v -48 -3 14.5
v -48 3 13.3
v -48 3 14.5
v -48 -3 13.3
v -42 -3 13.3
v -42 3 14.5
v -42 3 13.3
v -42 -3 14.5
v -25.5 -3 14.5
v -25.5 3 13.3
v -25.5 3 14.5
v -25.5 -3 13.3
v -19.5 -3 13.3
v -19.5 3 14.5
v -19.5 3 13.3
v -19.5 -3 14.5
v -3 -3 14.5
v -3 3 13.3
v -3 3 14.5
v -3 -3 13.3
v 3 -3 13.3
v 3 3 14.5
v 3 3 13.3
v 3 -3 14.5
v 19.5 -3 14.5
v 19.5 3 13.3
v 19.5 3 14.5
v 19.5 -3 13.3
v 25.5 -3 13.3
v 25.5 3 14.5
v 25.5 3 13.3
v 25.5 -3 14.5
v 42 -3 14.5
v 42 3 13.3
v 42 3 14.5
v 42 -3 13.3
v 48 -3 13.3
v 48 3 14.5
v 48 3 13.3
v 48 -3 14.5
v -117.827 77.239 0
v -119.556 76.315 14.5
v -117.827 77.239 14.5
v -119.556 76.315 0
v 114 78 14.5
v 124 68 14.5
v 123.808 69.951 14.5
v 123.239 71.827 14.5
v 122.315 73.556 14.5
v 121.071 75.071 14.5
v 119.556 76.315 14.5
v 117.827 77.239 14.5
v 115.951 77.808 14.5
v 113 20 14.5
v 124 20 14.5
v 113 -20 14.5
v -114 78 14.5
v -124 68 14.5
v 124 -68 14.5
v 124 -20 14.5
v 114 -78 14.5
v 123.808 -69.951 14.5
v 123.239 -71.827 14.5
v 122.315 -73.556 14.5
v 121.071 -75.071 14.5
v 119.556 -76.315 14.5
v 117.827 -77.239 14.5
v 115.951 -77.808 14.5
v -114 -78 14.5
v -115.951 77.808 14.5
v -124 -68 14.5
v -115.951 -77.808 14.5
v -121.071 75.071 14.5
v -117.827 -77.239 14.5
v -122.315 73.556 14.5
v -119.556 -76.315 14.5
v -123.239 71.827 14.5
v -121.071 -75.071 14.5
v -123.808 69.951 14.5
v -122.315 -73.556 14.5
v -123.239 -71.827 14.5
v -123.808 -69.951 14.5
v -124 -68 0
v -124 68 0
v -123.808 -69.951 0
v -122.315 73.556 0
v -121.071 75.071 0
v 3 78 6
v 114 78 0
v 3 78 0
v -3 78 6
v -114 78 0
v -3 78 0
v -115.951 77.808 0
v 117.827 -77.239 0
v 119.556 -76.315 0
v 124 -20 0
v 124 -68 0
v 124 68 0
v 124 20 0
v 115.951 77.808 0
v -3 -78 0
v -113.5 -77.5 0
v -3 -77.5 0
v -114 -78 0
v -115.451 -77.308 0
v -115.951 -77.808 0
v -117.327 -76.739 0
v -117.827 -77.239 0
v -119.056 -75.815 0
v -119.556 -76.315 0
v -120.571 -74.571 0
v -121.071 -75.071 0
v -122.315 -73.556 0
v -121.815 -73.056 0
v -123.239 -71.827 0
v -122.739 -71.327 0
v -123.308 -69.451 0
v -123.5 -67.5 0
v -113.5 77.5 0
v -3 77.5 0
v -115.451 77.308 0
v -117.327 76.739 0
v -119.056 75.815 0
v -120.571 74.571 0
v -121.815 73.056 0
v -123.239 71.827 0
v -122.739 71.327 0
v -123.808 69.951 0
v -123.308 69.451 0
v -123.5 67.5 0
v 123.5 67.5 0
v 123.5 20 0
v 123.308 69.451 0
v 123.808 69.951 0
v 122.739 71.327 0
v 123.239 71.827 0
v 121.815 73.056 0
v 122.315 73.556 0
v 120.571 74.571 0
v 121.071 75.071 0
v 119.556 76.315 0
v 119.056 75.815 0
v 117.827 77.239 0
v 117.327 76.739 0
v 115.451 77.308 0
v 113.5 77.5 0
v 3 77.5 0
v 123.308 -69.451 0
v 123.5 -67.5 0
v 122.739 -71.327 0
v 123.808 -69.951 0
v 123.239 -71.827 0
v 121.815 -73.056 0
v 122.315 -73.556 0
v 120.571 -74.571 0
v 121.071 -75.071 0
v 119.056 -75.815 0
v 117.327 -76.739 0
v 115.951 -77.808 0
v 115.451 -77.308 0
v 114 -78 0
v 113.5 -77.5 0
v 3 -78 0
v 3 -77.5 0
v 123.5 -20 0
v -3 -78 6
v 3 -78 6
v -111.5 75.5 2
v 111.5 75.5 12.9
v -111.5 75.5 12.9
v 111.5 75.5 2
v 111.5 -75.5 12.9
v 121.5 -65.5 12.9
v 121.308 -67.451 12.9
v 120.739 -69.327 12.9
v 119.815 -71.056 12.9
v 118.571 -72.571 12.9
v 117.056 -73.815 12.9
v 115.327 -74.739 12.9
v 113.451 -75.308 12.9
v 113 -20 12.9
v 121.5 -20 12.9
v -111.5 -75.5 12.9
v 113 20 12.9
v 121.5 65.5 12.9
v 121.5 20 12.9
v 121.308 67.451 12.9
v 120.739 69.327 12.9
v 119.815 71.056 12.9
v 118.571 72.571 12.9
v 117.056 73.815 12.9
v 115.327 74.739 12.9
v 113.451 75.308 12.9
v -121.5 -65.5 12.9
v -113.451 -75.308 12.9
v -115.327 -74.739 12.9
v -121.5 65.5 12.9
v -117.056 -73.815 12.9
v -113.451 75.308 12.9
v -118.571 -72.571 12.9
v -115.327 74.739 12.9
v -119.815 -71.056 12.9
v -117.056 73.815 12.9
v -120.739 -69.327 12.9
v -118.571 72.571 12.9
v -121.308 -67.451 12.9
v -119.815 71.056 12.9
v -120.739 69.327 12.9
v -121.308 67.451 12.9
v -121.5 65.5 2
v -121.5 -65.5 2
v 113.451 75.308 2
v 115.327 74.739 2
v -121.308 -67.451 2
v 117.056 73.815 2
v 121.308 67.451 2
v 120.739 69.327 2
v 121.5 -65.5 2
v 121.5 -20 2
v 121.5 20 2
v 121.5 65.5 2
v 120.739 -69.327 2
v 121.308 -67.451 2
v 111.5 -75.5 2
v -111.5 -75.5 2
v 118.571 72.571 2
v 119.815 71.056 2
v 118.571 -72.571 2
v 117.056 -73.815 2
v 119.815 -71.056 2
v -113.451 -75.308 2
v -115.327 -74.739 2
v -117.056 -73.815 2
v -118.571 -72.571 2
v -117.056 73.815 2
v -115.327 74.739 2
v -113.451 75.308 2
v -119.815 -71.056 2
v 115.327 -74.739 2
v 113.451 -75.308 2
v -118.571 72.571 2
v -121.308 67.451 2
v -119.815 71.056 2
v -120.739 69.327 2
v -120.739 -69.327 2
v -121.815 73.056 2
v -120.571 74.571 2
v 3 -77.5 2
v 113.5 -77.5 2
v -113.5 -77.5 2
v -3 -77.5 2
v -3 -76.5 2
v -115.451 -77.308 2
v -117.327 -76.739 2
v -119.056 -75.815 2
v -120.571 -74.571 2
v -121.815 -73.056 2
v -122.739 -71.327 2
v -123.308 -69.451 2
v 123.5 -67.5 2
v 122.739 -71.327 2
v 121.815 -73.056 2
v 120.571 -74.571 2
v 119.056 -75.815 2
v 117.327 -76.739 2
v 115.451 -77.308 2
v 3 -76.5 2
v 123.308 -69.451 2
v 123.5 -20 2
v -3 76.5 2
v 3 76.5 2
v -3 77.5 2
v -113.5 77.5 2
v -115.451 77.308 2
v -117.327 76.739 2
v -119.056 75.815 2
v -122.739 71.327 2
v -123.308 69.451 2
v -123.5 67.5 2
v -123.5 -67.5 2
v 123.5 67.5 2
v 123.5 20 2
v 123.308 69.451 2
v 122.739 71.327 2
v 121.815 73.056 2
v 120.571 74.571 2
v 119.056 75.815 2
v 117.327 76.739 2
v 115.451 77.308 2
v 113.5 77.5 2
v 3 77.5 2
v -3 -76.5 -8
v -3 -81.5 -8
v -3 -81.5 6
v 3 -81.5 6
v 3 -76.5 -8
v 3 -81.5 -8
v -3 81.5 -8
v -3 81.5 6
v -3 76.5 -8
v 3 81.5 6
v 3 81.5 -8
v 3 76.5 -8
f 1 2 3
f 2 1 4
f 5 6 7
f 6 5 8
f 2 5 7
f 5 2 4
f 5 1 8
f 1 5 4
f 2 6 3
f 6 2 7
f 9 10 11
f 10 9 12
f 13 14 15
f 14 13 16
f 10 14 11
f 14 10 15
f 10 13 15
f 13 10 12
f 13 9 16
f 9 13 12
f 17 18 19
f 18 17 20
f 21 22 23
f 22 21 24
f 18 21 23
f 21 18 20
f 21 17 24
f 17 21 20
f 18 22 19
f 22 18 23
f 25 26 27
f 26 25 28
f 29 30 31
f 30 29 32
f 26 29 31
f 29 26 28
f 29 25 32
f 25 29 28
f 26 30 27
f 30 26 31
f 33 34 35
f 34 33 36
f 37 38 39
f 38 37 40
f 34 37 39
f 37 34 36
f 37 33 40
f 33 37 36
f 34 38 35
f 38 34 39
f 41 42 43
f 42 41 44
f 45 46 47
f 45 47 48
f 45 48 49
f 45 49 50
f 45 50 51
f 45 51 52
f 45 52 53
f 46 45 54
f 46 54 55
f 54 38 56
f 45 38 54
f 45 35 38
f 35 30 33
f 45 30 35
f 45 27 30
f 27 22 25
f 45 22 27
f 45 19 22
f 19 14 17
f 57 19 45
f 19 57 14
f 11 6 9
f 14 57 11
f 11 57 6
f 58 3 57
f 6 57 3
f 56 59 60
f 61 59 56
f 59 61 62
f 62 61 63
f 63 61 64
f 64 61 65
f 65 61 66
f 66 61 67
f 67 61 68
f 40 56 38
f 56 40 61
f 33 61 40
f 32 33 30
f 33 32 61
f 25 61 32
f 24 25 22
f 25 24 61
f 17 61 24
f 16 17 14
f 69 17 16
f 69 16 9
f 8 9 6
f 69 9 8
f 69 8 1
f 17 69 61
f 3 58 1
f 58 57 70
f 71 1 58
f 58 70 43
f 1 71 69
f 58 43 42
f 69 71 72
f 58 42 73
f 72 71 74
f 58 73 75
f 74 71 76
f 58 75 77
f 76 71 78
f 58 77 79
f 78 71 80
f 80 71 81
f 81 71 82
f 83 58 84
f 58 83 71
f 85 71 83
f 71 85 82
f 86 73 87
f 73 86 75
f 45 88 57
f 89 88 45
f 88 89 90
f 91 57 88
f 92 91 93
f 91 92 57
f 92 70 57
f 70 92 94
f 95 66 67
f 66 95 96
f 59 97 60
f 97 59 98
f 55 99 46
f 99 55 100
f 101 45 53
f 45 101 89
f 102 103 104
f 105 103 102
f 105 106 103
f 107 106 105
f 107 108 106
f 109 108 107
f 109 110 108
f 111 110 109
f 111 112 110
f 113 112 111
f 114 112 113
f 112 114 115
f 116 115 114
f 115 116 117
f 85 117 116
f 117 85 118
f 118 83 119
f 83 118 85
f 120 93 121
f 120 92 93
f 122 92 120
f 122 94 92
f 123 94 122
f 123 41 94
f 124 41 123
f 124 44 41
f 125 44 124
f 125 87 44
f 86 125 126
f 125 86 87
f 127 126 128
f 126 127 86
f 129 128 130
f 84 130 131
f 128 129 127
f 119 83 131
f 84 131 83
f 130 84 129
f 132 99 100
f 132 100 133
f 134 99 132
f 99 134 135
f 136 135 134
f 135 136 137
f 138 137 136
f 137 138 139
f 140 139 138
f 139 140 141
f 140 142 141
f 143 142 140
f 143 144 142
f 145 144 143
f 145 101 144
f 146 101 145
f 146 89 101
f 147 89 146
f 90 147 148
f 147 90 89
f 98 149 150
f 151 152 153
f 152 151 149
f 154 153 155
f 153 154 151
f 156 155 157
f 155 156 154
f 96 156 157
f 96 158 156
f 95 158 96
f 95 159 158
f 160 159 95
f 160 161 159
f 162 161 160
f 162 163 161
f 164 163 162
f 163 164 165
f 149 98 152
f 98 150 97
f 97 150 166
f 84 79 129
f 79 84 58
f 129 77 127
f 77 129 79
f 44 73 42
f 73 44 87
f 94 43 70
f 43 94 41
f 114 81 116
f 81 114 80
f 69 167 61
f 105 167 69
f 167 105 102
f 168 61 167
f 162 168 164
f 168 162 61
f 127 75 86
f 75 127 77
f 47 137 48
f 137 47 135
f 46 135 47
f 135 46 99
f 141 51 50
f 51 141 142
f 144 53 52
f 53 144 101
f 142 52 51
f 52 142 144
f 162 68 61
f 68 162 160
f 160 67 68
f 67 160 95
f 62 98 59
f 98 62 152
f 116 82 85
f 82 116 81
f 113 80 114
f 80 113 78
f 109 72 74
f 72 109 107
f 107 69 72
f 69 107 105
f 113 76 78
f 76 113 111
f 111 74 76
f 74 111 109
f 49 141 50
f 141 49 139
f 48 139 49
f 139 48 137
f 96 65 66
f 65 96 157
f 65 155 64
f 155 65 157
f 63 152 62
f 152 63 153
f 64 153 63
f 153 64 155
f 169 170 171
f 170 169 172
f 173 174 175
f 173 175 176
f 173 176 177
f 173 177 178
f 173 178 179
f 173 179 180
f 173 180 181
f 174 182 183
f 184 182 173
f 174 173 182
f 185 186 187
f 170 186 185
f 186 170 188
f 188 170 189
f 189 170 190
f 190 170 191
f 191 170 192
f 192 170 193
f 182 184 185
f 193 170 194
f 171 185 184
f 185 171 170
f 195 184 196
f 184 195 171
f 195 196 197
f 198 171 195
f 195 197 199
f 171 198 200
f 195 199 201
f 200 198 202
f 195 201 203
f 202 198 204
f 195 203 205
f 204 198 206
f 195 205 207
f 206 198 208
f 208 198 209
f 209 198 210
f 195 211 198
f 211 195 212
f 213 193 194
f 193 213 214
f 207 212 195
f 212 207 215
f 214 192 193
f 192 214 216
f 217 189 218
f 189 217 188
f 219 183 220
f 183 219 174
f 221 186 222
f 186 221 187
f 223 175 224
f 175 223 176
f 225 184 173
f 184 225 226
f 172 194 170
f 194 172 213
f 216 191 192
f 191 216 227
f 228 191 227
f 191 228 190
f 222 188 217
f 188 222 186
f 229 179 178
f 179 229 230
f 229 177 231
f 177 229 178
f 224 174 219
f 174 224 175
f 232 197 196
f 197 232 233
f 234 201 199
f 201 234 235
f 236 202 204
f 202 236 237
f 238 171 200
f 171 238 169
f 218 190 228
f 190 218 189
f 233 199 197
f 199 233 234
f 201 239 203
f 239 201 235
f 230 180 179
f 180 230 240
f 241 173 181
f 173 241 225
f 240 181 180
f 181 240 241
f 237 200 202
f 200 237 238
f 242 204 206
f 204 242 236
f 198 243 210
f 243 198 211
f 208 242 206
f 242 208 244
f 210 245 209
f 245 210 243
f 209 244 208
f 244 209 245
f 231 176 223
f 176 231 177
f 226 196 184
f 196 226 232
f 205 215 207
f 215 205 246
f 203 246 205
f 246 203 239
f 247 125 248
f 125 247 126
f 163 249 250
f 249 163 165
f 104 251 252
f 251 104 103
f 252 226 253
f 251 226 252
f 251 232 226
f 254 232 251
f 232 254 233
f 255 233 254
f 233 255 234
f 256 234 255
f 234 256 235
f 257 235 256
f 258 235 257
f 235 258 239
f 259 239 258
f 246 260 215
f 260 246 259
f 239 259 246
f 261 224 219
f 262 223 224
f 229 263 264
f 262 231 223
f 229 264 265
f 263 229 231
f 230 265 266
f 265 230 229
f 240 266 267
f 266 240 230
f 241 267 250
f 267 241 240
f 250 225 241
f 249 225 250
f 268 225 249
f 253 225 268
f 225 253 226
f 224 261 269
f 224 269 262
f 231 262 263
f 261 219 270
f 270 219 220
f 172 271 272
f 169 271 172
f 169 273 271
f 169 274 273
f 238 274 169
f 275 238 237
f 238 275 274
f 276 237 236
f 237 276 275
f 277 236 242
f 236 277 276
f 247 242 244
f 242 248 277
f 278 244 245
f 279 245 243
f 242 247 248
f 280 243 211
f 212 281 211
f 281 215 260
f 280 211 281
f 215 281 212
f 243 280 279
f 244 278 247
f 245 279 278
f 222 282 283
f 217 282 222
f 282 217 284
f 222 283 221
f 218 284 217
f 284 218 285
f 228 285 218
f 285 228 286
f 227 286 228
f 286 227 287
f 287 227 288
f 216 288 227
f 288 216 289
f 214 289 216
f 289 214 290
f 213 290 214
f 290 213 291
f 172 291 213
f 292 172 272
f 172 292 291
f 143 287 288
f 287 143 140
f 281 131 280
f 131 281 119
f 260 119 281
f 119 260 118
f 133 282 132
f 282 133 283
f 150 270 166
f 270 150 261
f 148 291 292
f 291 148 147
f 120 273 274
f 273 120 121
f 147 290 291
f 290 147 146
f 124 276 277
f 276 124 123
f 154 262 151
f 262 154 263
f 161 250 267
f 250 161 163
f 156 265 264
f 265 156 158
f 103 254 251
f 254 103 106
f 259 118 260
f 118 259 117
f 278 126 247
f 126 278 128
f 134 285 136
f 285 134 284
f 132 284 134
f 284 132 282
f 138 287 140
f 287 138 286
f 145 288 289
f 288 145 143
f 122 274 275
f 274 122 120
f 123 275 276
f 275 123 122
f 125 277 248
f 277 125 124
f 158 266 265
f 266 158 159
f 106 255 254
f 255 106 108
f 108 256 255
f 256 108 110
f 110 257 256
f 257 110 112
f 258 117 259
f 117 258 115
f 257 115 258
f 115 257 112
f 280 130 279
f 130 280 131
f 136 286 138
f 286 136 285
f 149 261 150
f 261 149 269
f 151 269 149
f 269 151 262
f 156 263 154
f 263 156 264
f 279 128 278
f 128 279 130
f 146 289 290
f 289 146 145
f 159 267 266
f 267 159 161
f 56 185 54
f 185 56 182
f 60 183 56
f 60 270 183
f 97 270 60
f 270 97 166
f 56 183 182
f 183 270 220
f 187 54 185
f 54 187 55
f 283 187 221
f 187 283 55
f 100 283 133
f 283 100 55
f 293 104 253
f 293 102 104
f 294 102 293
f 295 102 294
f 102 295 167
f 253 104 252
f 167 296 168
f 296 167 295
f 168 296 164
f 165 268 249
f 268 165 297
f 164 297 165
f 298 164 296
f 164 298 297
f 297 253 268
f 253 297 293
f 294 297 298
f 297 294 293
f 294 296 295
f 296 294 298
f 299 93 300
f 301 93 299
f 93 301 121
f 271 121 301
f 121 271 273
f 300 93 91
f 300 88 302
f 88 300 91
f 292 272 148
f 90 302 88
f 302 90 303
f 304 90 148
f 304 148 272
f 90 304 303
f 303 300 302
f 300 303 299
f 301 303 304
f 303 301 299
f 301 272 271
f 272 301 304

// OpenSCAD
//=============================================================================
// body_v5_upper_lid.scad —— 二层外包盖（扣在车身二层顶部）
//
// 设计要点（2026-11-01）
//   1. ★ 宁松勿紧：单边间隙 0.5mm（怕扣不上），底部再倒 2mm 斜角做导入
//   2. 只盖顶部 12mm 高（二层高 50，模块最高 34，留 4mm 余量不压线）
//   3. ★ 前缘开摄像窗：摄像头在 x≈112~115、y=0，窗宽 40 全高打通，绝不挡视野
//   4. 顶部开散热槽（FPGA/K230 会热）
//   5. 左右各一个外凸小耳（你手绘图上的两个"耳朵"），方便取下
//   6. 内角 R10（车身圆角 R8 + 2 余量，避免卡角扣不上）
//
// 打印：PETG 或 PLA，0.2 层高，壁 3 圈，填充 15%，不加支撑，brim 5
//=============================================================================

PART = "lid";        // "lid" | "check"（check 显示车身位置做校对）

// ---------------- 车身二层（body_v5.scad）----------------
L      = 242;        // 二层外长
W      = 150;        // 二层外宽
H2     = 50;         // 二层总高
WALL   = 3;
CR_BODY = 8;         // 车身圆角

// ---------------- 盖子参数 ----------------
CLR      = 0.5;      // ★ 单边间隙（怕扣不上，宁松勿紧；太松就改 0.3）
WALL_L   = 2.5;      // 盖壁厚
RIM_H    = 12;       // 裙边高度（只盖顶部 12mm）
TOP_T    = 2.5;      // 顶板厚度
CR_LID   = CR_BODY + 2;   // 盖内圆角（比车身大 2，避免卡角）
CHAMFER  = 2;        // 底部导入斜角

// ---------------- 摄像头窗口 ----------------
CAM_X    = 112;      // 摄像头中心 x（前缘 = +x）
CAM_W    = 40;       // 窗口宽度（摄像头 26 宽 + 两侧各 7 余量）
CAM_Y    = 0;

// ---------------- 散热槽 ----------------
VENT_N   = 5;
VENT_W   = 6;
VENT_L   = 90;
VENT_SP  = 18;

// ---------------- 耳朵 ----------------
EAR_W    = 14;
EAR_T    = 3;
EAR_OUT  = 5;

$fn = 32;


//-----------------------------------------------------------------------------
// 圆角矩形柱
//-----------------------------------------------------------------------------
module rrect(l, w, r, h) {
    hull() {
        for (x = [-l/2 + r, l/2 - r], y = [-w/2 + r, w/2 - r])
            translate([x, y, 0]) cylinder(r = r, h = h);
    }
}

//-----------------------------------------------------------------------------
// 盖子主体
//-----------------------------------------------------------------------------
module lid() {
    outer_l = L + 2 * (CLR + WALL_L);
    outer_w = W + 2 * (CLR + WALL_L);
    inner_l = L + 2 * CLR;
    inner_w = W + 2 * CLR;

    difference() {
        // ---- 外壳（顶板 + 裙边一体）----
        rrect(outer_l, outer_w, CR_LID, RIM_H + TOP_T);

        // ---- 内腔（从底部往上挖，留 TOP_T 做顶板）----
        translate([0, 0, -0.1])
            rrect(inner_l, inner_w, CR_LID, RIM_H + 1);

        // ---- 底部导入斜角：把内腔底部做成锥形，方便对准扣上 ----
        translate([0, 0, -0.1])
            rrect(inner_l + 2 * CHAMFER, inner_w + 2 * CHAMFER, CR_LID, CHAMFER + 0.1);
        // 上面这刀是把"底部 2mm 的内腔"挖大一点，形成 2mm 倒角

        // ---- 摄像头窗口：前壁 + 顶板前缘一起开，确保视野不被挡 ----
        translate([L / 2 - 8, CAM_Y - CAM_W / 2, -1])
            cube([24, CAM_W, RIM_H + TOP_T + 2]);

        // ---- 顶部散热槽 ----
        for (i = [0 : VENT_N - 1]) {
            translate([-VENT_L / 2 + i * (VENT_L / (VENT_N - 1)) - VENT_W / 2,
                       -VENT_W / 2, RIM_H + TOP_T - 1.2])
                cube([VENT_W, VENT_W, TOP_T + 2]);
        }
    }

    // ---- 两侧外凸耳朵（取下时着力）----
    for (s = [-1, 1]) {
        translate([0, s * (outer_w / 2 + EAR_OUT / 2 - 1.5), RIM_H / 2 - EAR_W / 2])
            difference() {
                cube([EAR_T * 2, EAR_OUT, EAR_W], center = true);
                // 内侧留个圆弧过渡（简化：不倒角）
            }
    }
}

//-----------------------------------------------------------------------------
// 校对：车身二层（半透明）
//-----------------------------------------------------------------------------
module body_check() {
    color([0.4, 0.6, 0.9, 0.25])
        translate([0, 0, -(H2 - RIM_H)])
            difference() {
                rrect(L, W, CR_BODY, H2);
                translate([0, 0, WALL]) rrect(L - 2 * WALL, W - 2 * WALL, CR_BODY - WALL, H2);
            }
    // 摄像头占位
    color([1, 0.3, 0.3, 0.6])
        translate([CAM_X, CAM_Y, -(H2 - RIM_H) + 34])
            cube([6, 26, 12], center = true);
}

//-----------------------------------------------------------------------------
if (PART == "lid") {
    lid();
} else {
    lid();
    body_check();
}
